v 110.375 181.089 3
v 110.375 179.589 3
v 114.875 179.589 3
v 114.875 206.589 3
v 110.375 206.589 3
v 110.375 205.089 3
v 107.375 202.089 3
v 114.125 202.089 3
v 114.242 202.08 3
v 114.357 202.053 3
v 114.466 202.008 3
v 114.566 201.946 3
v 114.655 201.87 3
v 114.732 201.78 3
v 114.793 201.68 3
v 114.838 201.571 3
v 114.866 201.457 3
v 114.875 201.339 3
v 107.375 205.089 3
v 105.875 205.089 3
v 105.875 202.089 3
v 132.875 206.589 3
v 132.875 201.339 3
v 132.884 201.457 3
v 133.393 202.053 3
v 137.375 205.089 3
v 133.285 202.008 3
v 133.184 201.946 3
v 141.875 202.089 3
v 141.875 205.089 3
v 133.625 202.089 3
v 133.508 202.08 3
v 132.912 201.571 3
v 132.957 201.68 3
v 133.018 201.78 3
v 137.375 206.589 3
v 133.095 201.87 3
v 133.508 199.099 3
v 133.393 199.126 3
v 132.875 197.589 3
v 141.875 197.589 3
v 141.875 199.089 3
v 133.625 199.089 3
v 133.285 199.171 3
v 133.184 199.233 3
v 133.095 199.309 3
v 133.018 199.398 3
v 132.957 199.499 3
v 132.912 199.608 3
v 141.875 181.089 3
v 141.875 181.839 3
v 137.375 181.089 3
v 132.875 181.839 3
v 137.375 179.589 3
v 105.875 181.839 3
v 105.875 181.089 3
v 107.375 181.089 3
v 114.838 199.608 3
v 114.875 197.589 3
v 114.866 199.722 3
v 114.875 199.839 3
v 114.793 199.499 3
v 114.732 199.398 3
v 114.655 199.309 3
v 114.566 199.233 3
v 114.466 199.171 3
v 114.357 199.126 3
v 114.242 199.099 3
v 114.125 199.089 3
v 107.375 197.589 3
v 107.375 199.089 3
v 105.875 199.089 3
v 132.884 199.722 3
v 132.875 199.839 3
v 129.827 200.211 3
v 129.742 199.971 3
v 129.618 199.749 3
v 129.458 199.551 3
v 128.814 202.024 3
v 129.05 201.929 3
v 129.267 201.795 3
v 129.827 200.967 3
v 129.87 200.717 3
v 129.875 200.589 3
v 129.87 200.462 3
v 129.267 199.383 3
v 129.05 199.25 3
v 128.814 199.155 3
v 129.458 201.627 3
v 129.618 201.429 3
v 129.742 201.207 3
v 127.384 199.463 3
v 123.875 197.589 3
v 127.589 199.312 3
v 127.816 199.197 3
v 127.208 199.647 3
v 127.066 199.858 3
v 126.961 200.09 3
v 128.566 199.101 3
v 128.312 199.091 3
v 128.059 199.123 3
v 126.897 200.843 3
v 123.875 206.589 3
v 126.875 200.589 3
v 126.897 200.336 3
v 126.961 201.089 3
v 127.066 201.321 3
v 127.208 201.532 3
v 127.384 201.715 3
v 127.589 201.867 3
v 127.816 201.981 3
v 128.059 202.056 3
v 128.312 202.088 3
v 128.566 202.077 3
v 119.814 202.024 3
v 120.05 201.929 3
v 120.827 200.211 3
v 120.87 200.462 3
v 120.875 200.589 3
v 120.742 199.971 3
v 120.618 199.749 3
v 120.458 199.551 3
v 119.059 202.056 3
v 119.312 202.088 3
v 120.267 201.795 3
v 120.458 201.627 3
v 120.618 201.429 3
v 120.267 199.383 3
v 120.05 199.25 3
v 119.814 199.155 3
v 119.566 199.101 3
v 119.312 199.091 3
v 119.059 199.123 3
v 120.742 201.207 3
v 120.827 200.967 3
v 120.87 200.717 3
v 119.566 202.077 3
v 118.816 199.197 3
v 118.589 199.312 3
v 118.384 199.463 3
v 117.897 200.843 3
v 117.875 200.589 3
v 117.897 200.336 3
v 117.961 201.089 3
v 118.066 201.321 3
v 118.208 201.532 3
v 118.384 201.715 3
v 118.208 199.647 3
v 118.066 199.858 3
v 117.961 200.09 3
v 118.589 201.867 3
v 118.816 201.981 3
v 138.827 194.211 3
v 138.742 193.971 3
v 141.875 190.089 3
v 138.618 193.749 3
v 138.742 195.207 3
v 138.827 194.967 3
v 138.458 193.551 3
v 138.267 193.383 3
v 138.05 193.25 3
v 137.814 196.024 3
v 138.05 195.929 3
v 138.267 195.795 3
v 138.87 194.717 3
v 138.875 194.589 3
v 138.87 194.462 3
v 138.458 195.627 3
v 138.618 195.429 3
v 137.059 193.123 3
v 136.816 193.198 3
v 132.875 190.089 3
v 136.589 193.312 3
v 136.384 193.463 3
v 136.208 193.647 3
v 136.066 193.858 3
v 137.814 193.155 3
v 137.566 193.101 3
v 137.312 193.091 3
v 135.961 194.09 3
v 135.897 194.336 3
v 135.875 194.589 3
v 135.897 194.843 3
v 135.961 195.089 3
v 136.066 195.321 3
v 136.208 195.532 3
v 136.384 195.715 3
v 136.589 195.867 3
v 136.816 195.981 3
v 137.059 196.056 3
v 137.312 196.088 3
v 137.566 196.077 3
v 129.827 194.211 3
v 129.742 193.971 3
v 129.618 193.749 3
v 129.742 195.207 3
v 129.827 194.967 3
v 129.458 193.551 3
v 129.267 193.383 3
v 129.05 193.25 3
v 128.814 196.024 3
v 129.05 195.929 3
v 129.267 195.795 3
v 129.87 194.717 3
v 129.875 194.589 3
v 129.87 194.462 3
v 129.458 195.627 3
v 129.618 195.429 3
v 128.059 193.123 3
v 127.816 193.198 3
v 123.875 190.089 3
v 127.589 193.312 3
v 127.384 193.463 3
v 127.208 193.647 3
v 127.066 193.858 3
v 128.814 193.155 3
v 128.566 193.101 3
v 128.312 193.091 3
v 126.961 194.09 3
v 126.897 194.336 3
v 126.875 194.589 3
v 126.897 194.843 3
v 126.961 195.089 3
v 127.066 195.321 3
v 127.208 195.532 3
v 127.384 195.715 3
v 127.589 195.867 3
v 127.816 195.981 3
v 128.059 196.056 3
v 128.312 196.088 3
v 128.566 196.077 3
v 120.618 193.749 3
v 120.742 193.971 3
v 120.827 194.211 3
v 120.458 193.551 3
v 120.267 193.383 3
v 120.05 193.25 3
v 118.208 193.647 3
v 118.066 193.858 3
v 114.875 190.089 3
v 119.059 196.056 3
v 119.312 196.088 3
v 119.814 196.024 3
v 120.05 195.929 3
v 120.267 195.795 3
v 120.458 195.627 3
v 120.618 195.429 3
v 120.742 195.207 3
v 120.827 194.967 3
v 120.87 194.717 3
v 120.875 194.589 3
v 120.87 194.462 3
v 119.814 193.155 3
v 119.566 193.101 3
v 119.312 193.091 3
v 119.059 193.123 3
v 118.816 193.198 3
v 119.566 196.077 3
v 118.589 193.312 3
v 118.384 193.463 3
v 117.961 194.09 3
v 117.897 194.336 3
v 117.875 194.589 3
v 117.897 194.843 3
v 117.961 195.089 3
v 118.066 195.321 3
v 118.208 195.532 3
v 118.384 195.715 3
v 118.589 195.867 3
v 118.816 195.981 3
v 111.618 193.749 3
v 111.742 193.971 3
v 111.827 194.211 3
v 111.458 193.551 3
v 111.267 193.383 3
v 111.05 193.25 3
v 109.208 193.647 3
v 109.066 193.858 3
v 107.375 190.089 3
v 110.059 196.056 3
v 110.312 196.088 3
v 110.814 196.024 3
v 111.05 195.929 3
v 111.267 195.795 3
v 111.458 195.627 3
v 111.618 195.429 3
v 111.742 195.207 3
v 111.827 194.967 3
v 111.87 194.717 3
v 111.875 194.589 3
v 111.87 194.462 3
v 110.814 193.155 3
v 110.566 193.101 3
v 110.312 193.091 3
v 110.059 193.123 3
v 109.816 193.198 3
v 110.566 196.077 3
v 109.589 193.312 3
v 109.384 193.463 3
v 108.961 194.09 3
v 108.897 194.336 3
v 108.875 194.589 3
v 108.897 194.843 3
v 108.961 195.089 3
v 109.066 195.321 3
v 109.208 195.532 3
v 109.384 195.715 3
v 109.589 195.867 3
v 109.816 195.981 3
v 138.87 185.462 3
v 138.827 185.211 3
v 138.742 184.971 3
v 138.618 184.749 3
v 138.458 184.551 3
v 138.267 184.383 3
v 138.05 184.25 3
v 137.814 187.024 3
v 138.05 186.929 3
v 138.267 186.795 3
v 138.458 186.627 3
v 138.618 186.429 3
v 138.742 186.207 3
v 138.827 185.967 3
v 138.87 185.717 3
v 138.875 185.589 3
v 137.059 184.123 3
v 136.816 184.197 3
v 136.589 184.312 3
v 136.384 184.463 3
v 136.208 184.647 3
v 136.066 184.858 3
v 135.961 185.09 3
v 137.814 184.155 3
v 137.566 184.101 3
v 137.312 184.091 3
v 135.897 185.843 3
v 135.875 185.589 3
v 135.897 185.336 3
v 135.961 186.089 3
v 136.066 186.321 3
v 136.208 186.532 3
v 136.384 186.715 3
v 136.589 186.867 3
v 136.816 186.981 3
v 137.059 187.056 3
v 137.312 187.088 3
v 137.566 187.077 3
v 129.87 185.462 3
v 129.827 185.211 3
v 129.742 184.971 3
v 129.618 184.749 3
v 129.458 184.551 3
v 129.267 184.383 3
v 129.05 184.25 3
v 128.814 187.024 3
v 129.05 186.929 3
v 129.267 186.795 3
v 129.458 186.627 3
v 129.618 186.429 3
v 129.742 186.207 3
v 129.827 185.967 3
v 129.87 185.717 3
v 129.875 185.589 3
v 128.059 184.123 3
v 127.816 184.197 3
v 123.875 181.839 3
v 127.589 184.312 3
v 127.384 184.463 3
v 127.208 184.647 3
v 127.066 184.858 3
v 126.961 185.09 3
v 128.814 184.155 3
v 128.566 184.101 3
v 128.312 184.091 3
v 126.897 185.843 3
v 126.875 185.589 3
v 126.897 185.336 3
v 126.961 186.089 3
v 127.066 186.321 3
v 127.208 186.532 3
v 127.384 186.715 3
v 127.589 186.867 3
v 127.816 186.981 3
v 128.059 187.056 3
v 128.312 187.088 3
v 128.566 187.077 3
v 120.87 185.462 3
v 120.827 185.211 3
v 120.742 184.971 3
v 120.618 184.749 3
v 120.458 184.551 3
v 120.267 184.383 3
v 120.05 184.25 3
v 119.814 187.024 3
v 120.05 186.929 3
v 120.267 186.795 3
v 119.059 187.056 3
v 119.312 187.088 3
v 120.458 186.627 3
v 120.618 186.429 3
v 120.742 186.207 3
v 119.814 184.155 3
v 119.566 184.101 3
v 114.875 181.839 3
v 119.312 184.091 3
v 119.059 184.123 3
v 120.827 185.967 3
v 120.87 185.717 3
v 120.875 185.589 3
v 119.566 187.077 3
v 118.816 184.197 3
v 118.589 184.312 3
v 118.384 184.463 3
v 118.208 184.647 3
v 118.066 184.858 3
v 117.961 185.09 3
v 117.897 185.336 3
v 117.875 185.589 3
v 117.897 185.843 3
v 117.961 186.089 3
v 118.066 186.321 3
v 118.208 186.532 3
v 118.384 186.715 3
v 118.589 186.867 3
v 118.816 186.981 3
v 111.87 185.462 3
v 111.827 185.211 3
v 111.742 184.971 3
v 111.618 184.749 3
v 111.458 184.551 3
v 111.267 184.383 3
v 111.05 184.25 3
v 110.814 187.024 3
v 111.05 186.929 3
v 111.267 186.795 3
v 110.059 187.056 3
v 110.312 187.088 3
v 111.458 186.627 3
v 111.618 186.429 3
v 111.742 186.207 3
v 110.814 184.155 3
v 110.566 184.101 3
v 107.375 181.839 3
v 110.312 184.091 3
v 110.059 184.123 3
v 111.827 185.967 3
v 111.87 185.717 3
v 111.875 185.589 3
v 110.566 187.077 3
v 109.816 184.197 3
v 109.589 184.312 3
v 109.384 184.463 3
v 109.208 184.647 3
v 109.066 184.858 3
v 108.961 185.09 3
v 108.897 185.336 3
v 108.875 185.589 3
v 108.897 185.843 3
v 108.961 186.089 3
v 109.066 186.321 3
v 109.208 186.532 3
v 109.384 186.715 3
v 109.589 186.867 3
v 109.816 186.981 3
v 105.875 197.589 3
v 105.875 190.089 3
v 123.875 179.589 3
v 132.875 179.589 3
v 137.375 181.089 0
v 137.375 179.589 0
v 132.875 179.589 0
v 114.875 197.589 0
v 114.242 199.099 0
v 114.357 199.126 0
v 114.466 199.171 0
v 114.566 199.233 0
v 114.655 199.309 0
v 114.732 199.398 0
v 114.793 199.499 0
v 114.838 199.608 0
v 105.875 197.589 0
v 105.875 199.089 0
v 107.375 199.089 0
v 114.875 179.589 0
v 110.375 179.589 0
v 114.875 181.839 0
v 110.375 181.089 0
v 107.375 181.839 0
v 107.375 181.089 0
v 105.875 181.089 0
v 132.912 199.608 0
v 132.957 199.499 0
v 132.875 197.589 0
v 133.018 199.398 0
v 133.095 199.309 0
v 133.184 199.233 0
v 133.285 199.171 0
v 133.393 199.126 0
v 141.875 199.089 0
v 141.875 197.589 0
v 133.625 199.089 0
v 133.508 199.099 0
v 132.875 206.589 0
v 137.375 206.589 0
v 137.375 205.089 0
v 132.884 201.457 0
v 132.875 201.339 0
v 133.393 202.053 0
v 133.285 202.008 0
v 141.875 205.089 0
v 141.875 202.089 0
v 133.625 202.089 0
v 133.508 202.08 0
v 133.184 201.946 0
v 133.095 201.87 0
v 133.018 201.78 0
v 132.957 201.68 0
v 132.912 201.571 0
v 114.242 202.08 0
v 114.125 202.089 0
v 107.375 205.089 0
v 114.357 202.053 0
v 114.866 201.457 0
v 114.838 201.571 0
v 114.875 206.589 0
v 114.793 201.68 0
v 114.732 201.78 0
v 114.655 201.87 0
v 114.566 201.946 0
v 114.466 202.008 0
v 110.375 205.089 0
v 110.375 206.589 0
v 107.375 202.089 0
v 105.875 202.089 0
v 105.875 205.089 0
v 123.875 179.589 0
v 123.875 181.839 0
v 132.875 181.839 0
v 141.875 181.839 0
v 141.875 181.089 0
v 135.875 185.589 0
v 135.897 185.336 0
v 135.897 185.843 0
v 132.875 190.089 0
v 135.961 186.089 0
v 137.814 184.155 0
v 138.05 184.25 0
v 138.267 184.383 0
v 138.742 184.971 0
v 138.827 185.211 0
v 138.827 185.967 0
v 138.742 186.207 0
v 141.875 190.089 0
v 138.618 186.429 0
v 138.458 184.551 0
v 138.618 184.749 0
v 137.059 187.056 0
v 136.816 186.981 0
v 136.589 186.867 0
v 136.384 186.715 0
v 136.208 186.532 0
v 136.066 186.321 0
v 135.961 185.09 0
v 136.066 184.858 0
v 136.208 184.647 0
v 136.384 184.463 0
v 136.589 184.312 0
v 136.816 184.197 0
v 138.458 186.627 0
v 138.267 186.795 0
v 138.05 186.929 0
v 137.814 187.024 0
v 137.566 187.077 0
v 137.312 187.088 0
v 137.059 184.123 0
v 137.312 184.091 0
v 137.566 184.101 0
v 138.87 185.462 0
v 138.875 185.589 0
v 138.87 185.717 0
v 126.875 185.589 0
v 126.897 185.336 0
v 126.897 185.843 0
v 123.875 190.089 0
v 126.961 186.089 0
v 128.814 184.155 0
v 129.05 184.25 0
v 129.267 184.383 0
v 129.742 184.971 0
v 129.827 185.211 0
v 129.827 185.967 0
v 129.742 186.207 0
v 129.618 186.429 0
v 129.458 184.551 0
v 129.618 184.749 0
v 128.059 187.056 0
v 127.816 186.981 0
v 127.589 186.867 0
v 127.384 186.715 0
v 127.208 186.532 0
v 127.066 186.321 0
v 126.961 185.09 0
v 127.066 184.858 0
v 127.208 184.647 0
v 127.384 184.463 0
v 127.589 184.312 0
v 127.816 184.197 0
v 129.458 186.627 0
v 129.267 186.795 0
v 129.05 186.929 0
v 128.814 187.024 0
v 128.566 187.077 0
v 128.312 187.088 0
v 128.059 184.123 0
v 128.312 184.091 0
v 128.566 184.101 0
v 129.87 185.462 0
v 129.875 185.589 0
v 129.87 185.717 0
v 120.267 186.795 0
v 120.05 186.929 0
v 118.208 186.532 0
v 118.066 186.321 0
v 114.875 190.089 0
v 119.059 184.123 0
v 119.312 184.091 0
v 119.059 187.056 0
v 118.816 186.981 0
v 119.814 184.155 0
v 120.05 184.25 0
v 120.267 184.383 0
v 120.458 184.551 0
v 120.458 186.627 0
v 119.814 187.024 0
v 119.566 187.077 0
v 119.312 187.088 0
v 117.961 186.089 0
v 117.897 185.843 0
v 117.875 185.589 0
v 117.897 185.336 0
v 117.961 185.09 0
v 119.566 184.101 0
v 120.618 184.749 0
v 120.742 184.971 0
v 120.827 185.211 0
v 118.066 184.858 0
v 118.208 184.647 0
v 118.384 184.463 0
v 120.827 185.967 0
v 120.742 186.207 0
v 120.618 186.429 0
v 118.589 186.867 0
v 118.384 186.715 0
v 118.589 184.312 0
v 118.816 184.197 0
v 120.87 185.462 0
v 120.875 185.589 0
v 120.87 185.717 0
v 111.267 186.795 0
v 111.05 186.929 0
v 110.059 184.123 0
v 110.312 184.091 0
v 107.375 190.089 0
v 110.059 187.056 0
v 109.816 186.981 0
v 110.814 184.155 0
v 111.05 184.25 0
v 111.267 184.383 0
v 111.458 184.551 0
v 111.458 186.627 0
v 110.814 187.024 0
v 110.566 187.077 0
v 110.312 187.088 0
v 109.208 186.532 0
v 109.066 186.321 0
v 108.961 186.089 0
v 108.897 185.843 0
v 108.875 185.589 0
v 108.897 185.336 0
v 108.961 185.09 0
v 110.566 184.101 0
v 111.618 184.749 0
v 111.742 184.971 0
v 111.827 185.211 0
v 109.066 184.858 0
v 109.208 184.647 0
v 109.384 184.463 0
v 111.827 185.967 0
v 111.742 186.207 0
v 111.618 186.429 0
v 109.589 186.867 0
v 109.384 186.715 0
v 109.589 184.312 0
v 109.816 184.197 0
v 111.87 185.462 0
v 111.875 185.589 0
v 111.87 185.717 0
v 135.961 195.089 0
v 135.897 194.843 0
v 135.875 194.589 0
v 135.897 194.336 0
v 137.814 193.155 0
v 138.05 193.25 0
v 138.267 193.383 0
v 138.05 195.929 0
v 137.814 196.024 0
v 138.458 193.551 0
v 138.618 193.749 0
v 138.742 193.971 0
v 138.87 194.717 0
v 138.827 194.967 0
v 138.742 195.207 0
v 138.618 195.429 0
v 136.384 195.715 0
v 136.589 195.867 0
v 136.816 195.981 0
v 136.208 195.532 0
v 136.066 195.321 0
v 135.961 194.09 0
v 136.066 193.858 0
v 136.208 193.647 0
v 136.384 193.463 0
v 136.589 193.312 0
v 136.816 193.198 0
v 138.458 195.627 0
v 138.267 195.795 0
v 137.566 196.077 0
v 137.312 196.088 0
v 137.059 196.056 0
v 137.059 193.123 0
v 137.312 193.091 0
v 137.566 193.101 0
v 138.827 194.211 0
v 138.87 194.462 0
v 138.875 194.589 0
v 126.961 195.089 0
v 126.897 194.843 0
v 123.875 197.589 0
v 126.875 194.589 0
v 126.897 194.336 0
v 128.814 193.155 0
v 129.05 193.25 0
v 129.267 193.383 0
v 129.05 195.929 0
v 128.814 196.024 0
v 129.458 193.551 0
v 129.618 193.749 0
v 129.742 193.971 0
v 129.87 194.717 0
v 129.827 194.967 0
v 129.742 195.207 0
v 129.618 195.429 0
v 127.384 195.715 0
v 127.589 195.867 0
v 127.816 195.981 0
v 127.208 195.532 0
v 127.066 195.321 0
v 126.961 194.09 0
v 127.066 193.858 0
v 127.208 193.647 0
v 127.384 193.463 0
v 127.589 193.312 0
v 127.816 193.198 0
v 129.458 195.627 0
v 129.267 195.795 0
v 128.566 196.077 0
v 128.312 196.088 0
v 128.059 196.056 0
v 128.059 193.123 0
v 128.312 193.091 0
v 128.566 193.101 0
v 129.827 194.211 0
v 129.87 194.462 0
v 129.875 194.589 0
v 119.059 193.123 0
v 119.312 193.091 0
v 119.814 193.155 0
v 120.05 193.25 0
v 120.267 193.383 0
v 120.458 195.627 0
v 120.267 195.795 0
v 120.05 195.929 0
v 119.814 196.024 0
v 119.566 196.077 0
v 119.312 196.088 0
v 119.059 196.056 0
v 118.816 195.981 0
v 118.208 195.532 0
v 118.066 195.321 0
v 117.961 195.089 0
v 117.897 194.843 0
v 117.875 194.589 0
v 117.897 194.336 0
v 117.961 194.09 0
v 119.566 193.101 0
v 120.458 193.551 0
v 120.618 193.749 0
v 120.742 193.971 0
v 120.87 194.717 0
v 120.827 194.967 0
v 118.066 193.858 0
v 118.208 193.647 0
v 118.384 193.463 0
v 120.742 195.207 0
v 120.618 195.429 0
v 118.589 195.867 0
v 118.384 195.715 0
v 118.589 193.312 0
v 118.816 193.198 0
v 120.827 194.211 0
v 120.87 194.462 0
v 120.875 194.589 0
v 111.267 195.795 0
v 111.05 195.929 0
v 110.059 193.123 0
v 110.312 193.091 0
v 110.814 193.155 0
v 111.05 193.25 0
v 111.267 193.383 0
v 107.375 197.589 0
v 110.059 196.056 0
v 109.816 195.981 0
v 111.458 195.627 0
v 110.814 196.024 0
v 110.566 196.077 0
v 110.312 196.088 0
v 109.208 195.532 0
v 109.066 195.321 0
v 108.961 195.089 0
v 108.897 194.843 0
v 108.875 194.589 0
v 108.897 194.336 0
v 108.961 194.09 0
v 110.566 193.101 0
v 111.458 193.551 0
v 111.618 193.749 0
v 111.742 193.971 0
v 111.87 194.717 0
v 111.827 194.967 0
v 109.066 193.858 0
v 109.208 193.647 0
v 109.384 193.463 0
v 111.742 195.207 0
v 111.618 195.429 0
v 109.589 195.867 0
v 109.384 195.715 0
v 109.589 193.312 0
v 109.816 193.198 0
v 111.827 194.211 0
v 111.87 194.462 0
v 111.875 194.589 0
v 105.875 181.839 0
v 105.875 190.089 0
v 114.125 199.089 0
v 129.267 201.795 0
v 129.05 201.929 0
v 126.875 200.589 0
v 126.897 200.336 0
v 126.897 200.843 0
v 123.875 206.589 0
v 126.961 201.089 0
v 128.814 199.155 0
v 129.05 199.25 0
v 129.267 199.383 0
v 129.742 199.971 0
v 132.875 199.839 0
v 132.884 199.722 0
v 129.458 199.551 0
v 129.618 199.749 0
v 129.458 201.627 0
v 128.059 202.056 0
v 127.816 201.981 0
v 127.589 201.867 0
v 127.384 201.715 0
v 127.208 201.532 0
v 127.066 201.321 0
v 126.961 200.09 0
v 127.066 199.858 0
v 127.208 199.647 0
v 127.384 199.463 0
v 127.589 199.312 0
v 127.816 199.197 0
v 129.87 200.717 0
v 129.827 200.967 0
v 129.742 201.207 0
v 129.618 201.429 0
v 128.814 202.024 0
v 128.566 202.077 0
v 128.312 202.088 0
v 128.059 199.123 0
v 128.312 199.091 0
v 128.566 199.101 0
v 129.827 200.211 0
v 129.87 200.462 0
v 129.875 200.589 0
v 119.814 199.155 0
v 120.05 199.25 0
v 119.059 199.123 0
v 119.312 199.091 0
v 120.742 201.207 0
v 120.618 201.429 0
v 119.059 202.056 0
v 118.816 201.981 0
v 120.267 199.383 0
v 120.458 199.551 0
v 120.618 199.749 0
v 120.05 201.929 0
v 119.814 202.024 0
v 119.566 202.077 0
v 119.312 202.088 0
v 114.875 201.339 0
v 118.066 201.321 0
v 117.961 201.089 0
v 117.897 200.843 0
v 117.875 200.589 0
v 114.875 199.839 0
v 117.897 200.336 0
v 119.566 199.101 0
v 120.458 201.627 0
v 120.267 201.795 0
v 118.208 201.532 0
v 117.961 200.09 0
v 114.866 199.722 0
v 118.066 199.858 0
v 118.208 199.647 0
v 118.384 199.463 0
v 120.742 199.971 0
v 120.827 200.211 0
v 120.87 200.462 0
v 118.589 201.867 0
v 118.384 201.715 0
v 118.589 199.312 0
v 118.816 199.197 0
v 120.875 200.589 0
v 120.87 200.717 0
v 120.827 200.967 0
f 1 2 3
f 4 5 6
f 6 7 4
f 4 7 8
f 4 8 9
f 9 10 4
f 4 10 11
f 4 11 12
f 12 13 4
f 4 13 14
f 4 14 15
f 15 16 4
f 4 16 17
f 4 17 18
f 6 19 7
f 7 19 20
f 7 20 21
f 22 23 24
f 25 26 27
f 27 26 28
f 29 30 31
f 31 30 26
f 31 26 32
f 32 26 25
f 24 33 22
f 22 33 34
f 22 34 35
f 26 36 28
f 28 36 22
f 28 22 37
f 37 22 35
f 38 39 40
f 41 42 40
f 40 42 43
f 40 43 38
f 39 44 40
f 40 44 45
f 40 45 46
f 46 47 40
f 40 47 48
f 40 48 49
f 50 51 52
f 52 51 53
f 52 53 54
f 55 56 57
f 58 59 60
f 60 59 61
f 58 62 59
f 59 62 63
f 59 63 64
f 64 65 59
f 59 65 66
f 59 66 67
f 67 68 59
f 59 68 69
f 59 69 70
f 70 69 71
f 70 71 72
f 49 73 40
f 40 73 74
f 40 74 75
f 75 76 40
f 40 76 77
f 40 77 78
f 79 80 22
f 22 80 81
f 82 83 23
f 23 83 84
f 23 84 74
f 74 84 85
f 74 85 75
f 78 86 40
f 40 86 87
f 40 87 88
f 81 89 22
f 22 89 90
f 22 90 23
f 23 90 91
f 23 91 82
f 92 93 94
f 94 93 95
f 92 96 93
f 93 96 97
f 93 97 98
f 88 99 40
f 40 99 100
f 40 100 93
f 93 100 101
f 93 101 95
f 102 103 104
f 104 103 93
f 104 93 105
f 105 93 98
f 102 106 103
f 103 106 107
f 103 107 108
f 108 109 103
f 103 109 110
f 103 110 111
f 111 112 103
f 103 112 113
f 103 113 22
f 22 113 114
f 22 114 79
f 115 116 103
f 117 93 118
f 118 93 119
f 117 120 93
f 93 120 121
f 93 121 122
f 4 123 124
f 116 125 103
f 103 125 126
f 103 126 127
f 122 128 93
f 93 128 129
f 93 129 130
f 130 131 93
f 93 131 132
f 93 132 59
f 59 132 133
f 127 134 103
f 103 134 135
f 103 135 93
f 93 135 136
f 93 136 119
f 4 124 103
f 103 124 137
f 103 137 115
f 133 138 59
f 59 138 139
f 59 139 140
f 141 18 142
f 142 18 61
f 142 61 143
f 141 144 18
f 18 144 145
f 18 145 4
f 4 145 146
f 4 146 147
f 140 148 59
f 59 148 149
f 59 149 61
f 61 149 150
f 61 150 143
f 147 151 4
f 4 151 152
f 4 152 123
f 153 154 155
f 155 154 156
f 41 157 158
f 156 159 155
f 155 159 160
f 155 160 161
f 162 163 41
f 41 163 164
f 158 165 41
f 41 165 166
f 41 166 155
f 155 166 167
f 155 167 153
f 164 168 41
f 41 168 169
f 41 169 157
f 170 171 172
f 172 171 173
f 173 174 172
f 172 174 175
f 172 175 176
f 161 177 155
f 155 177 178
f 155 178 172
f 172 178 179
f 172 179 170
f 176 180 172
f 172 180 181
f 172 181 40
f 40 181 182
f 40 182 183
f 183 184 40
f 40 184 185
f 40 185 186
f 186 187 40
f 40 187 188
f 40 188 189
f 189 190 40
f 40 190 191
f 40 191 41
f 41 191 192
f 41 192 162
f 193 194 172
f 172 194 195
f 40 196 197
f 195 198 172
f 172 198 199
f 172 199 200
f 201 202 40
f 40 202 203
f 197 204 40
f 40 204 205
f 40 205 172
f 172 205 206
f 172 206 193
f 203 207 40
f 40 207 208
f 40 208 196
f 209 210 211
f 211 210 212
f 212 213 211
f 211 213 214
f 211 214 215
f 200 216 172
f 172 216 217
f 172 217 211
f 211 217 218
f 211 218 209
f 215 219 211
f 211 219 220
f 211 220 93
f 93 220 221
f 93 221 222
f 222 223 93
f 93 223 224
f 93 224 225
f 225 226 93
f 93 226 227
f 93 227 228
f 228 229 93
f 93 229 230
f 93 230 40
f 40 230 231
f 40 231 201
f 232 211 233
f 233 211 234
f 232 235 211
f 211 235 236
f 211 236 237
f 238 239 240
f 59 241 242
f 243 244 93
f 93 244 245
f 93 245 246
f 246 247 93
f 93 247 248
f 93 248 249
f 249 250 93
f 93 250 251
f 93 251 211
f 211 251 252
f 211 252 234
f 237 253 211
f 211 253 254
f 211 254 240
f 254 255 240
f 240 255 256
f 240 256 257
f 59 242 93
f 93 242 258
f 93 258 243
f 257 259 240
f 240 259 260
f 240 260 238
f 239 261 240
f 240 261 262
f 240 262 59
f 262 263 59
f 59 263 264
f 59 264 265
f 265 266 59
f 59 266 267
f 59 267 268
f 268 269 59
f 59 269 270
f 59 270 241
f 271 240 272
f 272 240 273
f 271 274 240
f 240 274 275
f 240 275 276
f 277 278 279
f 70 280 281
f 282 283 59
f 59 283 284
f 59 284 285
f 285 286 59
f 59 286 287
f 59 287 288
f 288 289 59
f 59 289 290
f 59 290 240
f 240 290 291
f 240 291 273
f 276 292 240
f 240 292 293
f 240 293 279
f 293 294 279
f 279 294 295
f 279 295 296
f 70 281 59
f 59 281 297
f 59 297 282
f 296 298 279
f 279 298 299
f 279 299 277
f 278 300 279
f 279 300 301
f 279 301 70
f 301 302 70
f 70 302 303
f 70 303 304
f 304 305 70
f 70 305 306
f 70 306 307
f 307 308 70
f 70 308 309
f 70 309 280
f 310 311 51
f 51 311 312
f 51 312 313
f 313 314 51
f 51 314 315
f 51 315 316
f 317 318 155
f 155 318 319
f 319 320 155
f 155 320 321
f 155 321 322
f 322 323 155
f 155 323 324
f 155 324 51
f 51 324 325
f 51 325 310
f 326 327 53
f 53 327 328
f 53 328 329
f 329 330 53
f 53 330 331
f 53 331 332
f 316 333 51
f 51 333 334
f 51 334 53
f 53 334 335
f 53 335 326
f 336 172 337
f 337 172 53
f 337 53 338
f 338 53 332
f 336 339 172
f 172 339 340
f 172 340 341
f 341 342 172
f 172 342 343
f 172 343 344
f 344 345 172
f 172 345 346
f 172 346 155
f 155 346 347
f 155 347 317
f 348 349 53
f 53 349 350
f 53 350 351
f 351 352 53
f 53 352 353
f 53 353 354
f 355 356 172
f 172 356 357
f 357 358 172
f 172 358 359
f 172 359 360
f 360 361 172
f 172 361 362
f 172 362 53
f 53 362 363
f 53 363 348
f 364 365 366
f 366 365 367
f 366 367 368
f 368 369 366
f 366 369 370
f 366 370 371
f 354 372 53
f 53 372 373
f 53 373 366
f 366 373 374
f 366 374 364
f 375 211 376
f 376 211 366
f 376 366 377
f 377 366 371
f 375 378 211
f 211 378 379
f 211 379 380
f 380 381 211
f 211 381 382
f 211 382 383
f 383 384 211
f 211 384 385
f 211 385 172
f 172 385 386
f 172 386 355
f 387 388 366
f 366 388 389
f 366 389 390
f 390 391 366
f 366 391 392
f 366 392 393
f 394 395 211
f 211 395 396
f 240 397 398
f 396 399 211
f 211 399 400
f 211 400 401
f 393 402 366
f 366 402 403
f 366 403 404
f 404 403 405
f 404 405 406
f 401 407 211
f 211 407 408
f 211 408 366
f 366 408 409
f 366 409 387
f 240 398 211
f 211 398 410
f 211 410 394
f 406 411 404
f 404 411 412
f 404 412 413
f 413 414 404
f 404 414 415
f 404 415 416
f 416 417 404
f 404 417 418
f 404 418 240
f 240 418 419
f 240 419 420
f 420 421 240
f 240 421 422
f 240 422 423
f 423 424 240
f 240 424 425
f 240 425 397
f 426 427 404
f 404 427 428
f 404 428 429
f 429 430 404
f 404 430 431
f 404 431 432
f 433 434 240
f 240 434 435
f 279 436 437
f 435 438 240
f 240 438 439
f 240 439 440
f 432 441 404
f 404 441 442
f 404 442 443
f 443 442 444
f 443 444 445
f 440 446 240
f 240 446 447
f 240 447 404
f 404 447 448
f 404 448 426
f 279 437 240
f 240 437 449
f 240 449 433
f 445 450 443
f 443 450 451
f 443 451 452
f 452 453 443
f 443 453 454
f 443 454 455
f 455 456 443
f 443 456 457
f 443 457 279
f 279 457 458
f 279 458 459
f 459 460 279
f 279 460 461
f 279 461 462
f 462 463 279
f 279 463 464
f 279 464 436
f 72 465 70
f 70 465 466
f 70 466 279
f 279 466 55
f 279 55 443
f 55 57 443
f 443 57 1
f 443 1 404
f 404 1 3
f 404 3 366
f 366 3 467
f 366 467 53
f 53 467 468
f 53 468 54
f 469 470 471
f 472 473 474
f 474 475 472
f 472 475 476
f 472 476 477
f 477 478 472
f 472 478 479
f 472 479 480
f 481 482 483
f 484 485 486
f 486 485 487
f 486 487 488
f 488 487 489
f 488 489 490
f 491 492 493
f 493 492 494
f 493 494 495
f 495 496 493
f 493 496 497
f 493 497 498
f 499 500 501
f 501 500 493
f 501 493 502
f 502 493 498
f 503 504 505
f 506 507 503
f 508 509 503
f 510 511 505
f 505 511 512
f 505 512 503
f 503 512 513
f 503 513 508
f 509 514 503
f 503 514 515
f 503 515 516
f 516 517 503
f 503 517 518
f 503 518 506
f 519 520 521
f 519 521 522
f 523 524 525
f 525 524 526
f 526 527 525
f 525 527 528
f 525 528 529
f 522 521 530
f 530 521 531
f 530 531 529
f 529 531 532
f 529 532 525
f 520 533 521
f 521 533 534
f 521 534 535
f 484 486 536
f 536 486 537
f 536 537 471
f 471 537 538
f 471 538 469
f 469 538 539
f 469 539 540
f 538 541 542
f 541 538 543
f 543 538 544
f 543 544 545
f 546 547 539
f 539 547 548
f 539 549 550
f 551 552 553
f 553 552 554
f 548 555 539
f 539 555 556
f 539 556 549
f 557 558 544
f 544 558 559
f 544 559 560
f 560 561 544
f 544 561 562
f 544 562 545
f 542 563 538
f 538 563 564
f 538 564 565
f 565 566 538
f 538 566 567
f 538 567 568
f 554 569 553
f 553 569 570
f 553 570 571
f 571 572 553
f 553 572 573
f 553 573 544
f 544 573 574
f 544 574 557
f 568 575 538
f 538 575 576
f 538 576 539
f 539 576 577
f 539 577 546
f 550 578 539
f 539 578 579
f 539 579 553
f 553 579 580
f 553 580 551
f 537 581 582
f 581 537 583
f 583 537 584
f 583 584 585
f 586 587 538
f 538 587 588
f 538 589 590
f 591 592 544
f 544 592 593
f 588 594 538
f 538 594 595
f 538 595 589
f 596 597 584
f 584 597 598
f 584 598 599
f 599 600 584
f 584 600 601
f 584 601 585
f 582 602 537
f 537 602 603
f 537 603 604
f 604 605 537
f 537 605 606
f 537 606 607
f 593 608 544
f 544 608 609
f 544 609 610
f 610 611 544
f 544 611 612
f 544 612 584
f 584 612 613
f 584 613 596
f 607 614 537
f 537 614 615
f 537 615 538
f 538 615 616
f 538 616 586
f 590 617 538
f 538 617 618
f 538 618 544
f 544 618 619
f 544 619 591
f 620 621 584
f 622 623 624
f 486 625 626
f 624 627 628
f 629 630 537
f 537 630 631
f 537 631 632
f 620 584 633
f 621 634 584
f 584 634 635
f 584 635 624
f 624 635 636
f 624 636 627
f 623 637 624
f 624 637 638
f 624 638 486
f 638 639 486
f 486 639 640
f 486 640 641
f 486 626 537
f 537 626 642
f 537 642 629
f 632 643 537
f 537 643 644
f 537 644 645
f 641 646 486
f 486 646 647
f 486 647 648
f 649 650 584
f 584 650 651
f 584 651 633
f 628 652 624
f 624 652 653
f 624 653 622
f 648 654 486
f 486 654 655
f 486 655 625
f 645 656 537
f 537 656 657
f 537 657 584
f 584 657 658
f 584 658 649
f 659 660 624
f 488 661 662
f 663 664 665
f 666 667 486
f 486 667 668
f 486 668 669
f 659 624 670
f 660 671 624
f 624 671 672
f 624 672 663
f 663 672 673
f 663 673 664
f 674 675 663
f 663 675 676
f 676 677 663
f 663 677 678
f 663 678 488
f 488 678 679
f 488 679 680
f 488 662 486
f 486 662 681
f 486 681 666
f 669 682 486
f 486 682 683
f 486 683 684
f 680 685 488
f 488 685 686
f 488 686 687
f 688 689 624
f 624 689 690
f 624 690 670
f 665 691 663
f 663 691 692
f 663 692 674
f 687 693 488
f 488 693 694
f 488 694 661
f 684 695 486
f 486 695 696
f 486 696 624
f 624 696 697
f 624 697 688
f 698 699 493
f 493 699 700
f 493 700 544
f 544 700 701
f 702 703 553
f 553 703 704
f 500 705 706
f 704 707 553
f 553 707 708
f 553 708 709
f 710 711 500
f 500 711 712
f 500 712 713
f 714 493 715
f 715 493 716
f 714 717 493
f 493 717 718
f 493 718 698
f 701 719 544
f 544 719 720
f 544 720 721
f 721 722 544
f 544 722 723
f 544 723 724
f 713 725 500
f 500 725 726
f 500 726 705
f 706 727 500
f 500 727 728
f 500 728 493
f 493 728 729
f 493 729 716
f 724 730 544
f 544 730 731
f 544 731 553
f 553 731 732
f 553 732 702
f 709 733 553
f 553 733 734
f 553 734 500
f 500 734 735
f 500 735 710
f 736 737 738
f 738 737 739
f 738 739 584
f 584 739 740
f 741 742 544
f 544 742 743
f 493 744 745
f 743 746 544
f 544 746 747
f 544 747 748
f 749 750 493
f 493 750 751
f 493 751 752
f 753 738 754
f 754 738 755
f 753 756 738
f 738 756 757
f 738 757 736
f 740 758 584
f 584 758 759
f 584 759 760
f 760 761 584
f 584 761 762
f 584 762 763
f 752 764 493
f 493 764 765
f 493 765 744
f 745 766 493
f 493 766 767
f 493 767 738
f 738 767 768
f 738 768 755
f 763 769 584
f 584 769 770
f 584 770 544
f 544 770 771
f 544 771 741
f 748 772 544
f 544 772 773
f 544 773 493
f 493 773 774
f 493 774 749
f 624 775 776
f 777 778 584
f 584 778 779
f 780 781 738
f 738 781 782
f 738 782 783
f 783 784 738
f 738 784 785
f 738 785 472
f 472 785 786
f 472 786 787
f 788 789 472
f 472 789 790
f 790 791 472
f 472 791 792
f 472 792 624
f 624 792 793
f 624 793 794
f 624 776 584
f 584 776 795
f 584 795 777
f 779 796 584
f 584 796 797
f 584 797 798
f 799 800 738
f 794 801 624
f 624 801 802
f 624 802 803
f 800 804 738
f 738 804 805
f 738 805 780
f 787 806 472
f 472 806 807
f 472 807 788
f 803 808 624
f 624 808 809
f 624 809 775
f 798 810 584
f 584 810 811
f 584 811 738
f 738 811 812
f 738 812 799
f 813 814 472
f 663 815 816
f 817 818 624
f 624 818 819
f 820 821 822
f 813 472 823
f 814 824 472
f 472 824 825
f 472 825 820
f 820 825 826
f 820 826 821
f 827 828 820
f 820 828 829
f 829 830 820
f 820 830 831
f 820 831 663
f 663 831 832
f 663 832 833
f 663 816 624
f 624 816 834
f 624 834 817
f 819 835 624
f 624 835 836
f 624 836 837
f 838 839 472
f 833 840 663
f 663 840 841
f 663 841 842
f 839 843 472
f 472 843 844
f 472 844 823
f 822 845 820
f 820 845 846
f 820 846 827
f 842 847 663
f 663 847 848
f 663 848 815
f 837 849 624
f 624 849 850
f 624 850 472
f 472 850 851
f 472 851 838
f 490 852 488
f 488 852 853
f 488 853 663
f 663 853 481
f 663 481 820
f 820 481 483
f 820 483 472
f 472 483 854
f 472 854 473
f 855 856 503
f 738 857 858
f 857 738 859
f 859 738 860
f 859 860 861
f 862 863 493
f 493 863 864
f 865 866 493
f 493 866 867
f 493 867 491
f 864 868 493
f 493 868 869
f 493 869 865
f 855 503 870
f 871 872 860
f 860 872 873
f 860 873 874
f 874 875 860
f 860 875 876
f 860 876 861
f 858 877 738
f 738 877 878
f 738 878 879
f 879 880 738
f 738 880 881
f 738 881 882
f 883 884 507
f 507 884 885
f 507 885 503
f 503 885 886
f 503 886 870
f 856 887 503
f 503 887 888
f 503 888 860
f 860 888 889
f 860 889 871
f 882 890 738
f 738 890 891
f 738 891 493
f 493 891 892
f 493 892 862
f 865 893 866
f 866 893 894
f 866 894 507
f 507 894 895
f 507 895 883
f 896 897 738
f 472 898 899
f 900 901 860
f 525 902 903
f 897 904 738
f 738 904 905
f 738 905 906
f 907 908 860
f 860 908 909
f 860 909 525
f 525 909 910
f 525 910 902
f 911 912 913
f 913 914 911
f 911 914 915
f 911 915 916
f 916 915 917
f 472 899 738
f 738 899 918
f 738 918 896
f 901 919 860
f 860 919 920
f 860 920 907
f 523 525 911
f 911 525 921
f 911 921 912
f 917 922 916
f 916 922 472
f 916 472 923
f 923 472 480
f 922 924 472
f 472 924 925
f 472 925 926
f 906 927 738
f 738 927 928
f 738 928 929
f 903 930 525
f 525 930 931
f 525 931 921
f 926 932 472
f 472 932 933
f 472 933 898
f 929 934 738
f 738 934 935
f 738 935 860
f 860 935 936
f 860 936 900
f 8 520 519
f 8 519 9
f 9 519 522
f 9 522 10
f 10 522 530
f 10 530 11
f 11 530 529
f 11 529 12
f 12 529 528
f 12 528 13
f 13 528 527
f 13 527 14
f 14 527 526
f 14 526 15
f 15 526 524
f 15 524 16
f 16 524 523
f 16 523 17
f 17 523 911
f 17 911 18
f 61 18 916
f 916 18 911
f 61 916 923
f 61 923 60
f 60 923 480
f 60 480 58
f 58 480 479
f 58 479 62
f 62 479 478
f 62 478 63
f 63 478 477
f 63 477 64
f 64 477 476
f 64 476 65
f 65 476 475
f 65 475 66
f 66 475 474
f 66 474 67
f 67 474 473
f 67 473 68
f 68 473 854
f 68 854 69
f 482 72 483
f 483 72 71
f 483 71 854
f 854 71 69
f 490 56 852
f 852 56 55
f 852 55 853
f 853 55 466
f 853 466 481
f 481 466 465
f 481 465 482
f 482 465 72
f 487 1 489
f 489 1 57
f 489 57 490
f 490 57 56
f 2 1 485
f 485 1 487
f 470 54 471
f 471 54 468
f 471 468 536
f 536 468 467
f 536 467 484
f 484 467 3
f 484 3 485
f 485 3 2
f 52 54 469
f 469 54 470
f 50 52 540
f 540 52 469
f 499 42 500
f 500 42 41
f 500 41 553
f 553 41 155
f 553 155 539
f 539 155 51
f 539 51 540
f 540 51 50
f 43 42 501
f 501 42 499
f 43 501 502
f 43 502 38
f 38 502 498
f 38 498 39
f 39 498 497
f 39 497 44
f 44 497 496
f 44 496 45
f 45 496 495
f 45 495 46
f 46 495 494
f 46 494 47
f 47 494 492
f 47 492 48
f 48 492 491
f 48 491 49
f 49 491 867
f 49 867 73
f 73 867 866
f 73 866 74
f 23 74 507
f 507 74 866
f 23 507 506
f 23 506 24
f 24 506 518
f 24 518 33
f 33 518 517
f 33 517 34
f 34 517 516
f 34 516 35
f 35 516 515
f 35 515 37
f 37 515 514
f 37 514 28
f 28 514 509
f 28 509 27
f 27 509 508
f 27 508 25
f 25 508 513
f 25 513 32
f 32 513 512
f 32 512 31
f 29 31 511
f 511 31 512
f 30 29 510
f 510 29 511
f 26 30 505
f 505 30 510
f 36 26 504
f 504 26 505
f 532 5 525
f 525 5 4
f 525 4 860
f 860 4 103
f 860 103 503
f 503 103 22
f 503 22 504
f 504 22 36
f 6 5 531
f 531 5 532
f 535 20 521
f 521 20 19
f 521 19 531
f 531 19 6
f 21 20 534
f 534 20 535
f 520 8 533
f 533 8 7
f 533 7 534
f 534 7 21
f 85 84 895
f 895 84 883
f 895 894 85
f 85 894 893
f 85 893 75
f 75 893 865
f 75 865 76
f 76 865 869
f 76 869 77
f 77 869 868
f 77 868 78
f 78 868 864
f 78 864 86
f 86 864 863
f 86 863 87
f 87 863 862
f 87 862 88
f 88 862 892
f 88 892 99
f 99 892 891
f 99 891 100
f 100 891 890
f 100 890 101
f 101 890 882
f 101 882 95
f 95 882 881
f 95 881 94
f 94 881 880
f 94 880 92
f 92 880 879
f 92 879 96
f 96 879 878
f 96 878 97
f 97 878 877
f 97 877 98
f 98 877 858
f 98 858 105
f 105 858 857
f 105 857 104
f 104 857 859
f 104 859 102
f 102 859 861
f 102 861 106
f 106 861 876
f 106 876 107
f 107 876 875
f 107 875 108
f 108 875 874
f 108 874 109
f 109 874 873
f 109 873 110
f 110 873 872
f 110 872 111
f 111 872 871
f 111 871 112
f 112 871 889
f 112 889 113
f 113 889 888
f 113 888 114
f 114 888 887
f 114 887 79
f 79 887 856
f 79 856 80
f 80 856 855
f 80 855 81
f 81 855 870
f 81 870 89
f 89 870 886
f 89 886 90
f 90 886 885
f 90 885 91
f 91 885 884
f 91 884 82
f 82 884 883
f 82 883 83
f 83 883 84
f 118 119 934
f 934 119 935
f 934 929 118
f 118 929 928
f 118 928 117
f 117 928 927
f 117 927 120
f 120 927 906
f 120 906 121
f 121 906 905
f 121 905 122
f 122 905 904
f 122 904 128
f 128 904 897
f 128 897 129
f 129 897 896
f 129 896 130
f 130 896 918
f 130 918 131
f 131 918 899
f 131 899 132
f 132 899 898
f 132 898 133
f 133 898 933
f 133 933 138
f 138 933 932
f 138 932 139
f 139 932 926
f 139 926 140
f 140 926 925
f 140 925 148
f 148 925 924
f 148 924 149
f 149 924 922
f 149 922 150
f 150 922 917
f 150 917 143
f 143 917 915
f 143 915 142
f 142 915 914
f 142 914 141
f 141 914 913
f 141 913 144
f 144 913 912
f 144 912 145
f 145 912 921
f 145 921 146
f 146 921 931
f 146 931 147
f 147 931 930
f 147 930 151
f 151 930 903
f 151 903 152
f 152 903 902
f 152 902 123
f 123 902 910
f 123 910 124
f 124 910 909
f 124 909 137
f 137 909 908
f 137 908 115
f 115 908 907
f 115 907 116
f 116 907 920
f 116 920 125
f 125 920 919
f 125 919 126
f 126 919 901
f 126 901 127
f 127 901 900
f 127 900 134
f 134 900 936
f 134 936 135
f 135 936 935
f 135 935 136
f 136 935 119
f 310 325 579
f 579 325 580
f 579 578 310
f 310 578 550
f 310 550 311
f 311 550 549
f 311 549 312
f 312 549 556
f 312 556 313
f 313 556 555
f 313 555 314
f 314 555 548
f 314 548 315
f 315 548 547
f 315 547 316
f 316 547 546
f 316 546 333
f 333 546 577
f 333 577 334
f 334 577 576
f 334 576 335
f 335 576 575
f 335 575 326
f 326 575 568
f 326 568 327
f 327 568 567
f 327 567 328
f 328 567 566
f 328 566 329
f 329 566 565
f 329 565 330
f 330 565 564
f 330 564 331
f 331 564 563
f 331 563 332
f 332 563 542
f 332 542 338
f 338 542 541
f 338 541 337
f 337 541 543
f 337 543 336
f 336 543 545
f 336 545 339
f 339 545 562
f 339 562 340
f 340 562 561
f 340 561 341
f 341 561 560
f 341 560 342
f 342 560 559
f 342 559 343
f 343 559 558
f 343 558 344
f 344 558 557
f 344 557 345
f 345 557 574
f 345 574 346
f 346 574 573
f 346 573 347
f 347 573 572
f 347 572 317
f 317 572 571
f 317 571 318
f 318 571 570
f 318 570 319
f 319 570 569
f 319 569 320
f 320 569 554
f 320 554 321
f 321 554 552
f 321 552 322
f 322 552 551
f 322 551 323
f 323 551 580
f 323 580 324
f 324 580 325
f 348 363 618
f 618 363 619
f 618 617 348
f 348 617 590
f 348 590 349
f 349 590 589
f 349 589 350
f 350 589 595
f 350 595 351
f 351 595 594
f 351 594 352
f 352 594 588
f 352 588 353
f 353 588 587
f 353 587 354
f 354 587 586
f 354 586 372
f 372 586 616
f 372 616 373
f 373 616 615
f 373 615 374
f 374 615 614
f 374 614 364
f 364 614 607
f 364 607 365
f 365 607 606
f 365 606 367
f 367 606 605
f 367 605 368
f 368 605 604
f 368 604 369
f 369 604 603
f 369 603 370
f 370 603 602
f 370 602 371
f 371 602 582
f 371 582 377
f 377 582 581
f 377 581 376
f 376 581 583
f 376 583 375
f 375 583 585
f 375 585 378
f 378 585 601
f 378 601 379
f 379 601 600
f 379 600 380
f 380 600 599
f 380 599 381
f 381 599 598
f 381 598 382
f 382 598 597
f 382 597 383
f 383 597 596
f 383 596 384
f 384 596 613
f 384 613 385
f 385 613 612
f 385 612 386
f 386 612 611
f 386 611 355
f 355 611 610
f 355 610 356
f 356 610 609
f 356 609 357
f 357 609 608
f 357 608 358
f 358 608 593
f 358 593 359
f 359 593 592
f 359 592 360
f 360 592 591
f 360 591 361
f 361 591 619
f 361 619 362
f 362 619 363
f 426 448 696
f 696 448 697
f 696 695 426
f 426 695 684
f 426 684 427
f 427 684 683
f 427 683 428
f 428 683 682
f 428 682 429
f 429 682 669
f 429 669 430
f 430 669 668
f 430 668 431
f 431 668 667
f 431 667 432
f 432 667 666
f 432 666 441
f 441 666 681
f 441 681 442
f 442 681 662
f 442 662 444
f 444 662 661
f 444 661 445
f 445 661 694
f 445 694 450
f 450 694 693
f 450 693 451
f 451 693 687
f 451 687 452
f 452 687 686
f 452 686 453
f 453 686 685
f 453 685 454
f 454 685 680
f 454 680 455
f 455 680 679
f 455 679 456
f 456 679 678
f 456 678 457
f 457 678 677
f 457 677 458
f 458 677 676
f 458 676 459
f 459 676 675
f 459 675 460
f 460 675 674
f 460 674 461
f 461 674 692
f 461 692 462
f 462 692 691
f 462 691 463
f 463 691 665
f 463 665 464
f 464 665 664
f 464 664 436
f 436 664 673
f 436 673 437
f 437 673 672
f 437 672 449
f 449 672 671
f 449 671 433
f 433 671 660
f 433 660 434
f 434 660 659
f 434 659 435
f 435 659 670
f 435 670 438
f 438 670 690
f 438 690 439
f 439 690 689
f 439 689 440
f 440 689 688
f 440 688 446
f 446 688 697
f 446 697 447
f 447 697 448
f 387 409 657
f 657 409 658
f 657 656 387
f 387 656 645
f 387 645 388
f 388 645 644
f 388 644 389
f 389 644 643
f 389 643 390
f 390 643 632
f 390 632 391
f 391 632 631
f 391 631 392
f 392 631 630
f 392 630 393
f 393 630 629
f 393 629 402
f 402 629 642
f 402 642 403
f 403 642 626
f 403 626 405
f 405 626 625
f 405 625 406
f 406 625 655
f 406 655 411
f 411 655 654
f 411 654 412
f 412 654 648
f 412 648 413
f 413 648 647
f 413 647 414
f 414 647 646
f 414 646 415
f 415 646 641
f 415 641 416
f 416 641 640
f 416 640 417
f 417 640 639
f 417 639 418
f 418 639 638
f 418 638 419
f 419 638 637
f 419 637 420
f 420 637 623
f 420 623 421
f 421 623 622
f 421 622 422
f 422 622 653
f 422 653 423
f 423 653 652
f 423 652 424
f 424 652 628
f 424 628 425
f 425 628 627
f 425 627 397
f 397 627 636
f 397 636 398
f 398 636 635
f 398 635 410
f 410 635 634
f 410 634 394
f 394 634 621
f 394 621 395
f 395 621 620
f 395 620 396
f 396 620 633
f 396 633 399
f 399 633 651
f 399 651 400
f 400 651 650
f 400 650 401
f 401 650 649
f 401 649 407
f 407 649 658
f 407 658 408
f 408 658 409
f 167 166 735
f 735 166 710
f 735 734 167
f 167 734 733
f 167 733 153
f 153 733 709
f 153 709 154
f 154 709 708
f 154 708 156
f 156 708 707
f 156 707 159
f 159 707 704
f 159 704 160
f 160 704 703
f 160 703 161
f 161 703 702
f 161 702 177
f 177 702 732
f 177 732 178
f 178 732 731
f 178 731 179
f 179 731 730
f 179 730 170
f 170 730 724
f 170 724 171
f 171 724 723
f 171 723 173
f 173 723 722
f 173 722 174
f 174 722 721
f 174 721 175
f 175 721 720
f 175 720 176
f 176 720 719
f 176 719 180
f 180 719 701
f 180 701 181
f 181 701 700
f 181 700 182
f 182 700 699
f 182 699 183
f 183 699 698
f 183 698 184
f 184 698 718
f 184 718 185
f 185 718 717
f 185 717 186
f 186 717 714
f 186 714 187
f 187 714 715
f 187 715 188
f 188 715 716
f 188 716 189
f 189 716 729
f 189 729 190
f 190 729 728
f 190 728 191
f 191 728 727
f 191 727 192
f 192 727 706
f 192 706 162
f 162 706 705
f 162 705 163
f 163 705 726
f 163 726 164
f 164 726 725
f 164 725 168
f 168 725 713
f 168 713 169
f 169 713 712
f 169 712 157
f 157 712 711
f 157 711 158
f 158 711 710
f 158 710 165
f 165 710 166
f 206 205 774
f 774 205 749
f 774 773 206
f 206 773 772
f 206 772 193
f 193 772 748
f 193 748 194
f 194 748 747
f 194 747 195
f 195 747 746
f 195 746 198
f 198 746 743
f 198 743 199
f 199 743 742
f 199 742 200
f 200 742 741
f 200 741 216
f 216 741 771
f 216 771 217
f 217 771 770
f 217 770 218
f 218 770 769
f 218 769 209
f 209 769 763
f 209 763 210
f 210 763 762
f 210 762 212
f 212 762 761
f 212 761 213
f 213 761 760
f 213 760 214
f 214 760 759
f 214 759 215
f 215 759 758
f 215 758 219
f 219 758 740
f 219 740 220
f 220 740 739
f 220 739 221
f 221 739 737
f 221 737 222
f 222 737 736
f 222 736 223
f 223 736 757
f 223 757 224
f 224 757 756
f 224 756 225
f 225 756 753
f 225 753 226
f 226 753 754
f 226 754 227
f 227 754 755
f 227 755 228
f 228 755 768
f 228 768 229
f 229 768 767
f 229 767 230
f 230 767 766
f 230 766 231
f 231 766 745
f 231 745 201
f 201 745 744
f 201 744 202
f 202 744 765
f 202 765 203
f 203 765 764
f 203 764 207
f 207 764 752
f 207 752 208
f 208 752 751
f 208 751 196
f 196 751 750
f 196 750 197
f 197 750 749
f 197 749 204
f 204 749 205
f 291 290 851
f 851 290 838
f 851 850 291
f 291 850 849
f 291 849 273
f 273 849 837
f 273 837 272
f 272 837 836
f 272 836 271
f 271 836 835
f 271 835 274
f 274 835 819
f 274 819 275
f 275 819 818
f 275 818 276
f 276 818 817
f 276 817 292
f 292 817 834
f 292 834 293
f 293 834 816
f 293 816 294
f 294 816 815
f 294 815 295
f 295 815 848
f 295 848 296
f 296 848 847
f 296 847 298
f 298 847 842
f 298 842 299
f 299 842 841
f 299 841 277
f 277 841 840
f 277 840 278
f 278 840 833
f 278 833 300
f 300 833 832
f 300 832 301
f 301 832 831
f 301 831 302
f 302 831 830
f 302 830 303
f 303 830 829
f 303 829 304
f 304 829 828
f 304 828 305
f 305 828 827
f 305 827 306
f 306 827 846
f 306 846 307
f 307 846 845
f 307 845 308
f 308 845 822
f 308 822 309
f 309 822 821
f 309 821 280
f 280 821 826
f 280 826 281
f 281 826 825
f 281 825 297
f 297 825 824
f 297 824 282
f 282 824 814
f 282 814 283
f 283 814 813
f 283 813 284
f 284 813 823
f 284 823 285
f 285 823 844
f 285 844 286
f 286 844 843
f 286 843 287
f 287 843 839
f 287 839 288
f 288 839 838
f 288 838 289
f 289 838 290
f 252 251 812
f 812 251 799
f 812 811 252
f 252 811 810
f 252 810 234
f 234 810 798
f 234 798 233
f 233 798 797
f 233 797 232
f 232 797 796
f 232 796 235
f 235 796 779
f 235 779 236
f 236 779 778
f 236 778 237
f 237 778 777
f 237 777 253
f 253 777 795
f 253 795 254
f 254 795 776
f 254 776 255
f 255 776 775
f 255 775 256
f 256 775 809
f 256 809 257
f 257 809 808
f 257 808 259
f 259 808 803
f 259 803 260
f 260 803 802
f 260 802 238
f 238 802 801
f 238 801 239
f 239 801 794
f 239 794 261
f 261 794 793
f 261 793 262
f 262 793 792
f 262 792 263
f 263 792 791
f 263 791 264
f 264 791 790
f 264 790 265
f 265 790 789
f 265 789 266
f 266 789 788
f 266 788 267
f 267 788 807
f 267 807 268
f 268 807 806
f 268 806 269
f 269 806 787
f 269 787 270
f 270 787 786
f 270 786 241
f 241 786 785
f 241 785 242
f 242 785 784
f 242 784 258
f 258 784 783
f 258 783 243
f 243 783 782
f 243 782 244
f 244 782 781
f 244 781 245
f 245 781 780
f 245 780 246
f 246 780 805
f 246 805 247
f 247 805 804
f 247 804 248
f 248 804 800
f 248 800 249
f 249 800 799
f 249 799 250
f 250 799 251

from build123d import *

# Parameters (mm, degrees)
MODEL_R                 = 1.5
SALIENTE_EXTRUIR1_DEPTH = 3


with BuildPart() as part:
    # Model → Saliente-Extruir1 (new body)
    with BuildSketch(Plane.XY):
        with BuildLine():
            Line((105.875172656, 202.089330986), (105.875172656, 205.089330986))
            Line((105.875172656, 205.089330986), (110.375172306, 205.089330986))
            Line((110.375172306, 205.089330986), (110.375172306, 206.589330986))
            Line((110.375172306, 206.589330986), (137.375172656, 206.589330986))
            Line((137.375172656, 206.589330986), (137.375172656, 205.089330986))
            Line((137.375172656, 205.089330986), (141.875172656, 205.089330986))
            Line((141.875172656, 205.089330986), (141.875172656, 202.089330986))
            Line((141.875172656, 202.089330986), (133.625172656, 202.089319857))
            ThreePointArc((133.625172656, 202.089319857), (133.094842866, 201.869649228), (132.875173667, 201.339318846))
            Line((132.875173667, 201.339318846), (132.875175691, 199.839318846))
            ThreePointArc((132.875175691, 199.839318846), (133.09484632, 199.308989056), (133.625176703, 199.089319857))
            Line((133.625176703, 199.089319857), (141.875172656, 199.089330986))
            Line((141.875172656, 199.089330986), (141.875172656, 181.089330986))
            Line((141.875172656, 181.089330986), (137.375172656, 181.089330986))
            Line((137.375172656, 181.089330986), (137.375172656, 179.589330986))
            Line((137.375172656, 179.589330986), (110.375172306, 179.589330986))
            Line((110.375172306, 179.589330986), (110.375172306, 181.089330986))
            Line((110.375172306, 181.089330986), (105.875172656, 181.089330986))
            Line((105.875172656, 181.089330986), (105.875172656, 199.089330986))
            Line((105.875172656, 199.089330986), (114.125172656, 199.089330986))
            ThreePointArc((114.125172656, 199.089330986), (114.655502742, 199.3090009), (114.875172656, 199.839330986))
            Line((114.875172656, 199.839330986), (114.875172656, 201.339330986))
            ThreePointArc((114.875172656, 201.339330986), (114.655502742, 201.869661072), (114.125172656, 202.089330986))
            Line((114.125172656, 202.089330986), (105.875172656, 202.089330986))
        make_face()
        with Locations((128.375172656, 200.589330986)):
            Circle(MODEL_R, mode=Mode.SUBTRACT)
        with Locations((119.375172656, 200.589330986)):
            Circle(MODEL_R, mode=Mode.SUBTRACT)
        with Locations((137.375172306, 185.589330986)):
            Circle(MODEL_R, mode=Mode.SUBTRACT)
        with Locations((128.375172306, 185.589330986)):
            Circle(MODEL_R, mode=Mode.SUBTRACT)
        with Locations((110.375172306, 185.589330986)):
            Circle(MODEL_R, mode=Mode.SUBTRACT)
        with Locations((119.375172306, 185.589330986)):
            Circle(MODEL_R, mode=Mode.SUBTRACT)
        with Locations((137.375172306, 194.589330986)):
            Circle(MODEL_R, mode=Mode.SUBTRACT)
        with Locations((128.375172306, 194.589330986)):
            Circle(MODEL_R, mode=Mode.SUBTRACT)
        with Locations((110.375172306, 194.589330986)):
            Circle(MODEL_R, mode=Mode.SUBTRACT)
        with Locations((119.375172306, 194.589330986)):
            Circle(MODEL_R, mode=Mode.SUBTRACT)
    extrude(amount=SALIENTE_EXTRUIR1_DEPTH)


solid = part.part
